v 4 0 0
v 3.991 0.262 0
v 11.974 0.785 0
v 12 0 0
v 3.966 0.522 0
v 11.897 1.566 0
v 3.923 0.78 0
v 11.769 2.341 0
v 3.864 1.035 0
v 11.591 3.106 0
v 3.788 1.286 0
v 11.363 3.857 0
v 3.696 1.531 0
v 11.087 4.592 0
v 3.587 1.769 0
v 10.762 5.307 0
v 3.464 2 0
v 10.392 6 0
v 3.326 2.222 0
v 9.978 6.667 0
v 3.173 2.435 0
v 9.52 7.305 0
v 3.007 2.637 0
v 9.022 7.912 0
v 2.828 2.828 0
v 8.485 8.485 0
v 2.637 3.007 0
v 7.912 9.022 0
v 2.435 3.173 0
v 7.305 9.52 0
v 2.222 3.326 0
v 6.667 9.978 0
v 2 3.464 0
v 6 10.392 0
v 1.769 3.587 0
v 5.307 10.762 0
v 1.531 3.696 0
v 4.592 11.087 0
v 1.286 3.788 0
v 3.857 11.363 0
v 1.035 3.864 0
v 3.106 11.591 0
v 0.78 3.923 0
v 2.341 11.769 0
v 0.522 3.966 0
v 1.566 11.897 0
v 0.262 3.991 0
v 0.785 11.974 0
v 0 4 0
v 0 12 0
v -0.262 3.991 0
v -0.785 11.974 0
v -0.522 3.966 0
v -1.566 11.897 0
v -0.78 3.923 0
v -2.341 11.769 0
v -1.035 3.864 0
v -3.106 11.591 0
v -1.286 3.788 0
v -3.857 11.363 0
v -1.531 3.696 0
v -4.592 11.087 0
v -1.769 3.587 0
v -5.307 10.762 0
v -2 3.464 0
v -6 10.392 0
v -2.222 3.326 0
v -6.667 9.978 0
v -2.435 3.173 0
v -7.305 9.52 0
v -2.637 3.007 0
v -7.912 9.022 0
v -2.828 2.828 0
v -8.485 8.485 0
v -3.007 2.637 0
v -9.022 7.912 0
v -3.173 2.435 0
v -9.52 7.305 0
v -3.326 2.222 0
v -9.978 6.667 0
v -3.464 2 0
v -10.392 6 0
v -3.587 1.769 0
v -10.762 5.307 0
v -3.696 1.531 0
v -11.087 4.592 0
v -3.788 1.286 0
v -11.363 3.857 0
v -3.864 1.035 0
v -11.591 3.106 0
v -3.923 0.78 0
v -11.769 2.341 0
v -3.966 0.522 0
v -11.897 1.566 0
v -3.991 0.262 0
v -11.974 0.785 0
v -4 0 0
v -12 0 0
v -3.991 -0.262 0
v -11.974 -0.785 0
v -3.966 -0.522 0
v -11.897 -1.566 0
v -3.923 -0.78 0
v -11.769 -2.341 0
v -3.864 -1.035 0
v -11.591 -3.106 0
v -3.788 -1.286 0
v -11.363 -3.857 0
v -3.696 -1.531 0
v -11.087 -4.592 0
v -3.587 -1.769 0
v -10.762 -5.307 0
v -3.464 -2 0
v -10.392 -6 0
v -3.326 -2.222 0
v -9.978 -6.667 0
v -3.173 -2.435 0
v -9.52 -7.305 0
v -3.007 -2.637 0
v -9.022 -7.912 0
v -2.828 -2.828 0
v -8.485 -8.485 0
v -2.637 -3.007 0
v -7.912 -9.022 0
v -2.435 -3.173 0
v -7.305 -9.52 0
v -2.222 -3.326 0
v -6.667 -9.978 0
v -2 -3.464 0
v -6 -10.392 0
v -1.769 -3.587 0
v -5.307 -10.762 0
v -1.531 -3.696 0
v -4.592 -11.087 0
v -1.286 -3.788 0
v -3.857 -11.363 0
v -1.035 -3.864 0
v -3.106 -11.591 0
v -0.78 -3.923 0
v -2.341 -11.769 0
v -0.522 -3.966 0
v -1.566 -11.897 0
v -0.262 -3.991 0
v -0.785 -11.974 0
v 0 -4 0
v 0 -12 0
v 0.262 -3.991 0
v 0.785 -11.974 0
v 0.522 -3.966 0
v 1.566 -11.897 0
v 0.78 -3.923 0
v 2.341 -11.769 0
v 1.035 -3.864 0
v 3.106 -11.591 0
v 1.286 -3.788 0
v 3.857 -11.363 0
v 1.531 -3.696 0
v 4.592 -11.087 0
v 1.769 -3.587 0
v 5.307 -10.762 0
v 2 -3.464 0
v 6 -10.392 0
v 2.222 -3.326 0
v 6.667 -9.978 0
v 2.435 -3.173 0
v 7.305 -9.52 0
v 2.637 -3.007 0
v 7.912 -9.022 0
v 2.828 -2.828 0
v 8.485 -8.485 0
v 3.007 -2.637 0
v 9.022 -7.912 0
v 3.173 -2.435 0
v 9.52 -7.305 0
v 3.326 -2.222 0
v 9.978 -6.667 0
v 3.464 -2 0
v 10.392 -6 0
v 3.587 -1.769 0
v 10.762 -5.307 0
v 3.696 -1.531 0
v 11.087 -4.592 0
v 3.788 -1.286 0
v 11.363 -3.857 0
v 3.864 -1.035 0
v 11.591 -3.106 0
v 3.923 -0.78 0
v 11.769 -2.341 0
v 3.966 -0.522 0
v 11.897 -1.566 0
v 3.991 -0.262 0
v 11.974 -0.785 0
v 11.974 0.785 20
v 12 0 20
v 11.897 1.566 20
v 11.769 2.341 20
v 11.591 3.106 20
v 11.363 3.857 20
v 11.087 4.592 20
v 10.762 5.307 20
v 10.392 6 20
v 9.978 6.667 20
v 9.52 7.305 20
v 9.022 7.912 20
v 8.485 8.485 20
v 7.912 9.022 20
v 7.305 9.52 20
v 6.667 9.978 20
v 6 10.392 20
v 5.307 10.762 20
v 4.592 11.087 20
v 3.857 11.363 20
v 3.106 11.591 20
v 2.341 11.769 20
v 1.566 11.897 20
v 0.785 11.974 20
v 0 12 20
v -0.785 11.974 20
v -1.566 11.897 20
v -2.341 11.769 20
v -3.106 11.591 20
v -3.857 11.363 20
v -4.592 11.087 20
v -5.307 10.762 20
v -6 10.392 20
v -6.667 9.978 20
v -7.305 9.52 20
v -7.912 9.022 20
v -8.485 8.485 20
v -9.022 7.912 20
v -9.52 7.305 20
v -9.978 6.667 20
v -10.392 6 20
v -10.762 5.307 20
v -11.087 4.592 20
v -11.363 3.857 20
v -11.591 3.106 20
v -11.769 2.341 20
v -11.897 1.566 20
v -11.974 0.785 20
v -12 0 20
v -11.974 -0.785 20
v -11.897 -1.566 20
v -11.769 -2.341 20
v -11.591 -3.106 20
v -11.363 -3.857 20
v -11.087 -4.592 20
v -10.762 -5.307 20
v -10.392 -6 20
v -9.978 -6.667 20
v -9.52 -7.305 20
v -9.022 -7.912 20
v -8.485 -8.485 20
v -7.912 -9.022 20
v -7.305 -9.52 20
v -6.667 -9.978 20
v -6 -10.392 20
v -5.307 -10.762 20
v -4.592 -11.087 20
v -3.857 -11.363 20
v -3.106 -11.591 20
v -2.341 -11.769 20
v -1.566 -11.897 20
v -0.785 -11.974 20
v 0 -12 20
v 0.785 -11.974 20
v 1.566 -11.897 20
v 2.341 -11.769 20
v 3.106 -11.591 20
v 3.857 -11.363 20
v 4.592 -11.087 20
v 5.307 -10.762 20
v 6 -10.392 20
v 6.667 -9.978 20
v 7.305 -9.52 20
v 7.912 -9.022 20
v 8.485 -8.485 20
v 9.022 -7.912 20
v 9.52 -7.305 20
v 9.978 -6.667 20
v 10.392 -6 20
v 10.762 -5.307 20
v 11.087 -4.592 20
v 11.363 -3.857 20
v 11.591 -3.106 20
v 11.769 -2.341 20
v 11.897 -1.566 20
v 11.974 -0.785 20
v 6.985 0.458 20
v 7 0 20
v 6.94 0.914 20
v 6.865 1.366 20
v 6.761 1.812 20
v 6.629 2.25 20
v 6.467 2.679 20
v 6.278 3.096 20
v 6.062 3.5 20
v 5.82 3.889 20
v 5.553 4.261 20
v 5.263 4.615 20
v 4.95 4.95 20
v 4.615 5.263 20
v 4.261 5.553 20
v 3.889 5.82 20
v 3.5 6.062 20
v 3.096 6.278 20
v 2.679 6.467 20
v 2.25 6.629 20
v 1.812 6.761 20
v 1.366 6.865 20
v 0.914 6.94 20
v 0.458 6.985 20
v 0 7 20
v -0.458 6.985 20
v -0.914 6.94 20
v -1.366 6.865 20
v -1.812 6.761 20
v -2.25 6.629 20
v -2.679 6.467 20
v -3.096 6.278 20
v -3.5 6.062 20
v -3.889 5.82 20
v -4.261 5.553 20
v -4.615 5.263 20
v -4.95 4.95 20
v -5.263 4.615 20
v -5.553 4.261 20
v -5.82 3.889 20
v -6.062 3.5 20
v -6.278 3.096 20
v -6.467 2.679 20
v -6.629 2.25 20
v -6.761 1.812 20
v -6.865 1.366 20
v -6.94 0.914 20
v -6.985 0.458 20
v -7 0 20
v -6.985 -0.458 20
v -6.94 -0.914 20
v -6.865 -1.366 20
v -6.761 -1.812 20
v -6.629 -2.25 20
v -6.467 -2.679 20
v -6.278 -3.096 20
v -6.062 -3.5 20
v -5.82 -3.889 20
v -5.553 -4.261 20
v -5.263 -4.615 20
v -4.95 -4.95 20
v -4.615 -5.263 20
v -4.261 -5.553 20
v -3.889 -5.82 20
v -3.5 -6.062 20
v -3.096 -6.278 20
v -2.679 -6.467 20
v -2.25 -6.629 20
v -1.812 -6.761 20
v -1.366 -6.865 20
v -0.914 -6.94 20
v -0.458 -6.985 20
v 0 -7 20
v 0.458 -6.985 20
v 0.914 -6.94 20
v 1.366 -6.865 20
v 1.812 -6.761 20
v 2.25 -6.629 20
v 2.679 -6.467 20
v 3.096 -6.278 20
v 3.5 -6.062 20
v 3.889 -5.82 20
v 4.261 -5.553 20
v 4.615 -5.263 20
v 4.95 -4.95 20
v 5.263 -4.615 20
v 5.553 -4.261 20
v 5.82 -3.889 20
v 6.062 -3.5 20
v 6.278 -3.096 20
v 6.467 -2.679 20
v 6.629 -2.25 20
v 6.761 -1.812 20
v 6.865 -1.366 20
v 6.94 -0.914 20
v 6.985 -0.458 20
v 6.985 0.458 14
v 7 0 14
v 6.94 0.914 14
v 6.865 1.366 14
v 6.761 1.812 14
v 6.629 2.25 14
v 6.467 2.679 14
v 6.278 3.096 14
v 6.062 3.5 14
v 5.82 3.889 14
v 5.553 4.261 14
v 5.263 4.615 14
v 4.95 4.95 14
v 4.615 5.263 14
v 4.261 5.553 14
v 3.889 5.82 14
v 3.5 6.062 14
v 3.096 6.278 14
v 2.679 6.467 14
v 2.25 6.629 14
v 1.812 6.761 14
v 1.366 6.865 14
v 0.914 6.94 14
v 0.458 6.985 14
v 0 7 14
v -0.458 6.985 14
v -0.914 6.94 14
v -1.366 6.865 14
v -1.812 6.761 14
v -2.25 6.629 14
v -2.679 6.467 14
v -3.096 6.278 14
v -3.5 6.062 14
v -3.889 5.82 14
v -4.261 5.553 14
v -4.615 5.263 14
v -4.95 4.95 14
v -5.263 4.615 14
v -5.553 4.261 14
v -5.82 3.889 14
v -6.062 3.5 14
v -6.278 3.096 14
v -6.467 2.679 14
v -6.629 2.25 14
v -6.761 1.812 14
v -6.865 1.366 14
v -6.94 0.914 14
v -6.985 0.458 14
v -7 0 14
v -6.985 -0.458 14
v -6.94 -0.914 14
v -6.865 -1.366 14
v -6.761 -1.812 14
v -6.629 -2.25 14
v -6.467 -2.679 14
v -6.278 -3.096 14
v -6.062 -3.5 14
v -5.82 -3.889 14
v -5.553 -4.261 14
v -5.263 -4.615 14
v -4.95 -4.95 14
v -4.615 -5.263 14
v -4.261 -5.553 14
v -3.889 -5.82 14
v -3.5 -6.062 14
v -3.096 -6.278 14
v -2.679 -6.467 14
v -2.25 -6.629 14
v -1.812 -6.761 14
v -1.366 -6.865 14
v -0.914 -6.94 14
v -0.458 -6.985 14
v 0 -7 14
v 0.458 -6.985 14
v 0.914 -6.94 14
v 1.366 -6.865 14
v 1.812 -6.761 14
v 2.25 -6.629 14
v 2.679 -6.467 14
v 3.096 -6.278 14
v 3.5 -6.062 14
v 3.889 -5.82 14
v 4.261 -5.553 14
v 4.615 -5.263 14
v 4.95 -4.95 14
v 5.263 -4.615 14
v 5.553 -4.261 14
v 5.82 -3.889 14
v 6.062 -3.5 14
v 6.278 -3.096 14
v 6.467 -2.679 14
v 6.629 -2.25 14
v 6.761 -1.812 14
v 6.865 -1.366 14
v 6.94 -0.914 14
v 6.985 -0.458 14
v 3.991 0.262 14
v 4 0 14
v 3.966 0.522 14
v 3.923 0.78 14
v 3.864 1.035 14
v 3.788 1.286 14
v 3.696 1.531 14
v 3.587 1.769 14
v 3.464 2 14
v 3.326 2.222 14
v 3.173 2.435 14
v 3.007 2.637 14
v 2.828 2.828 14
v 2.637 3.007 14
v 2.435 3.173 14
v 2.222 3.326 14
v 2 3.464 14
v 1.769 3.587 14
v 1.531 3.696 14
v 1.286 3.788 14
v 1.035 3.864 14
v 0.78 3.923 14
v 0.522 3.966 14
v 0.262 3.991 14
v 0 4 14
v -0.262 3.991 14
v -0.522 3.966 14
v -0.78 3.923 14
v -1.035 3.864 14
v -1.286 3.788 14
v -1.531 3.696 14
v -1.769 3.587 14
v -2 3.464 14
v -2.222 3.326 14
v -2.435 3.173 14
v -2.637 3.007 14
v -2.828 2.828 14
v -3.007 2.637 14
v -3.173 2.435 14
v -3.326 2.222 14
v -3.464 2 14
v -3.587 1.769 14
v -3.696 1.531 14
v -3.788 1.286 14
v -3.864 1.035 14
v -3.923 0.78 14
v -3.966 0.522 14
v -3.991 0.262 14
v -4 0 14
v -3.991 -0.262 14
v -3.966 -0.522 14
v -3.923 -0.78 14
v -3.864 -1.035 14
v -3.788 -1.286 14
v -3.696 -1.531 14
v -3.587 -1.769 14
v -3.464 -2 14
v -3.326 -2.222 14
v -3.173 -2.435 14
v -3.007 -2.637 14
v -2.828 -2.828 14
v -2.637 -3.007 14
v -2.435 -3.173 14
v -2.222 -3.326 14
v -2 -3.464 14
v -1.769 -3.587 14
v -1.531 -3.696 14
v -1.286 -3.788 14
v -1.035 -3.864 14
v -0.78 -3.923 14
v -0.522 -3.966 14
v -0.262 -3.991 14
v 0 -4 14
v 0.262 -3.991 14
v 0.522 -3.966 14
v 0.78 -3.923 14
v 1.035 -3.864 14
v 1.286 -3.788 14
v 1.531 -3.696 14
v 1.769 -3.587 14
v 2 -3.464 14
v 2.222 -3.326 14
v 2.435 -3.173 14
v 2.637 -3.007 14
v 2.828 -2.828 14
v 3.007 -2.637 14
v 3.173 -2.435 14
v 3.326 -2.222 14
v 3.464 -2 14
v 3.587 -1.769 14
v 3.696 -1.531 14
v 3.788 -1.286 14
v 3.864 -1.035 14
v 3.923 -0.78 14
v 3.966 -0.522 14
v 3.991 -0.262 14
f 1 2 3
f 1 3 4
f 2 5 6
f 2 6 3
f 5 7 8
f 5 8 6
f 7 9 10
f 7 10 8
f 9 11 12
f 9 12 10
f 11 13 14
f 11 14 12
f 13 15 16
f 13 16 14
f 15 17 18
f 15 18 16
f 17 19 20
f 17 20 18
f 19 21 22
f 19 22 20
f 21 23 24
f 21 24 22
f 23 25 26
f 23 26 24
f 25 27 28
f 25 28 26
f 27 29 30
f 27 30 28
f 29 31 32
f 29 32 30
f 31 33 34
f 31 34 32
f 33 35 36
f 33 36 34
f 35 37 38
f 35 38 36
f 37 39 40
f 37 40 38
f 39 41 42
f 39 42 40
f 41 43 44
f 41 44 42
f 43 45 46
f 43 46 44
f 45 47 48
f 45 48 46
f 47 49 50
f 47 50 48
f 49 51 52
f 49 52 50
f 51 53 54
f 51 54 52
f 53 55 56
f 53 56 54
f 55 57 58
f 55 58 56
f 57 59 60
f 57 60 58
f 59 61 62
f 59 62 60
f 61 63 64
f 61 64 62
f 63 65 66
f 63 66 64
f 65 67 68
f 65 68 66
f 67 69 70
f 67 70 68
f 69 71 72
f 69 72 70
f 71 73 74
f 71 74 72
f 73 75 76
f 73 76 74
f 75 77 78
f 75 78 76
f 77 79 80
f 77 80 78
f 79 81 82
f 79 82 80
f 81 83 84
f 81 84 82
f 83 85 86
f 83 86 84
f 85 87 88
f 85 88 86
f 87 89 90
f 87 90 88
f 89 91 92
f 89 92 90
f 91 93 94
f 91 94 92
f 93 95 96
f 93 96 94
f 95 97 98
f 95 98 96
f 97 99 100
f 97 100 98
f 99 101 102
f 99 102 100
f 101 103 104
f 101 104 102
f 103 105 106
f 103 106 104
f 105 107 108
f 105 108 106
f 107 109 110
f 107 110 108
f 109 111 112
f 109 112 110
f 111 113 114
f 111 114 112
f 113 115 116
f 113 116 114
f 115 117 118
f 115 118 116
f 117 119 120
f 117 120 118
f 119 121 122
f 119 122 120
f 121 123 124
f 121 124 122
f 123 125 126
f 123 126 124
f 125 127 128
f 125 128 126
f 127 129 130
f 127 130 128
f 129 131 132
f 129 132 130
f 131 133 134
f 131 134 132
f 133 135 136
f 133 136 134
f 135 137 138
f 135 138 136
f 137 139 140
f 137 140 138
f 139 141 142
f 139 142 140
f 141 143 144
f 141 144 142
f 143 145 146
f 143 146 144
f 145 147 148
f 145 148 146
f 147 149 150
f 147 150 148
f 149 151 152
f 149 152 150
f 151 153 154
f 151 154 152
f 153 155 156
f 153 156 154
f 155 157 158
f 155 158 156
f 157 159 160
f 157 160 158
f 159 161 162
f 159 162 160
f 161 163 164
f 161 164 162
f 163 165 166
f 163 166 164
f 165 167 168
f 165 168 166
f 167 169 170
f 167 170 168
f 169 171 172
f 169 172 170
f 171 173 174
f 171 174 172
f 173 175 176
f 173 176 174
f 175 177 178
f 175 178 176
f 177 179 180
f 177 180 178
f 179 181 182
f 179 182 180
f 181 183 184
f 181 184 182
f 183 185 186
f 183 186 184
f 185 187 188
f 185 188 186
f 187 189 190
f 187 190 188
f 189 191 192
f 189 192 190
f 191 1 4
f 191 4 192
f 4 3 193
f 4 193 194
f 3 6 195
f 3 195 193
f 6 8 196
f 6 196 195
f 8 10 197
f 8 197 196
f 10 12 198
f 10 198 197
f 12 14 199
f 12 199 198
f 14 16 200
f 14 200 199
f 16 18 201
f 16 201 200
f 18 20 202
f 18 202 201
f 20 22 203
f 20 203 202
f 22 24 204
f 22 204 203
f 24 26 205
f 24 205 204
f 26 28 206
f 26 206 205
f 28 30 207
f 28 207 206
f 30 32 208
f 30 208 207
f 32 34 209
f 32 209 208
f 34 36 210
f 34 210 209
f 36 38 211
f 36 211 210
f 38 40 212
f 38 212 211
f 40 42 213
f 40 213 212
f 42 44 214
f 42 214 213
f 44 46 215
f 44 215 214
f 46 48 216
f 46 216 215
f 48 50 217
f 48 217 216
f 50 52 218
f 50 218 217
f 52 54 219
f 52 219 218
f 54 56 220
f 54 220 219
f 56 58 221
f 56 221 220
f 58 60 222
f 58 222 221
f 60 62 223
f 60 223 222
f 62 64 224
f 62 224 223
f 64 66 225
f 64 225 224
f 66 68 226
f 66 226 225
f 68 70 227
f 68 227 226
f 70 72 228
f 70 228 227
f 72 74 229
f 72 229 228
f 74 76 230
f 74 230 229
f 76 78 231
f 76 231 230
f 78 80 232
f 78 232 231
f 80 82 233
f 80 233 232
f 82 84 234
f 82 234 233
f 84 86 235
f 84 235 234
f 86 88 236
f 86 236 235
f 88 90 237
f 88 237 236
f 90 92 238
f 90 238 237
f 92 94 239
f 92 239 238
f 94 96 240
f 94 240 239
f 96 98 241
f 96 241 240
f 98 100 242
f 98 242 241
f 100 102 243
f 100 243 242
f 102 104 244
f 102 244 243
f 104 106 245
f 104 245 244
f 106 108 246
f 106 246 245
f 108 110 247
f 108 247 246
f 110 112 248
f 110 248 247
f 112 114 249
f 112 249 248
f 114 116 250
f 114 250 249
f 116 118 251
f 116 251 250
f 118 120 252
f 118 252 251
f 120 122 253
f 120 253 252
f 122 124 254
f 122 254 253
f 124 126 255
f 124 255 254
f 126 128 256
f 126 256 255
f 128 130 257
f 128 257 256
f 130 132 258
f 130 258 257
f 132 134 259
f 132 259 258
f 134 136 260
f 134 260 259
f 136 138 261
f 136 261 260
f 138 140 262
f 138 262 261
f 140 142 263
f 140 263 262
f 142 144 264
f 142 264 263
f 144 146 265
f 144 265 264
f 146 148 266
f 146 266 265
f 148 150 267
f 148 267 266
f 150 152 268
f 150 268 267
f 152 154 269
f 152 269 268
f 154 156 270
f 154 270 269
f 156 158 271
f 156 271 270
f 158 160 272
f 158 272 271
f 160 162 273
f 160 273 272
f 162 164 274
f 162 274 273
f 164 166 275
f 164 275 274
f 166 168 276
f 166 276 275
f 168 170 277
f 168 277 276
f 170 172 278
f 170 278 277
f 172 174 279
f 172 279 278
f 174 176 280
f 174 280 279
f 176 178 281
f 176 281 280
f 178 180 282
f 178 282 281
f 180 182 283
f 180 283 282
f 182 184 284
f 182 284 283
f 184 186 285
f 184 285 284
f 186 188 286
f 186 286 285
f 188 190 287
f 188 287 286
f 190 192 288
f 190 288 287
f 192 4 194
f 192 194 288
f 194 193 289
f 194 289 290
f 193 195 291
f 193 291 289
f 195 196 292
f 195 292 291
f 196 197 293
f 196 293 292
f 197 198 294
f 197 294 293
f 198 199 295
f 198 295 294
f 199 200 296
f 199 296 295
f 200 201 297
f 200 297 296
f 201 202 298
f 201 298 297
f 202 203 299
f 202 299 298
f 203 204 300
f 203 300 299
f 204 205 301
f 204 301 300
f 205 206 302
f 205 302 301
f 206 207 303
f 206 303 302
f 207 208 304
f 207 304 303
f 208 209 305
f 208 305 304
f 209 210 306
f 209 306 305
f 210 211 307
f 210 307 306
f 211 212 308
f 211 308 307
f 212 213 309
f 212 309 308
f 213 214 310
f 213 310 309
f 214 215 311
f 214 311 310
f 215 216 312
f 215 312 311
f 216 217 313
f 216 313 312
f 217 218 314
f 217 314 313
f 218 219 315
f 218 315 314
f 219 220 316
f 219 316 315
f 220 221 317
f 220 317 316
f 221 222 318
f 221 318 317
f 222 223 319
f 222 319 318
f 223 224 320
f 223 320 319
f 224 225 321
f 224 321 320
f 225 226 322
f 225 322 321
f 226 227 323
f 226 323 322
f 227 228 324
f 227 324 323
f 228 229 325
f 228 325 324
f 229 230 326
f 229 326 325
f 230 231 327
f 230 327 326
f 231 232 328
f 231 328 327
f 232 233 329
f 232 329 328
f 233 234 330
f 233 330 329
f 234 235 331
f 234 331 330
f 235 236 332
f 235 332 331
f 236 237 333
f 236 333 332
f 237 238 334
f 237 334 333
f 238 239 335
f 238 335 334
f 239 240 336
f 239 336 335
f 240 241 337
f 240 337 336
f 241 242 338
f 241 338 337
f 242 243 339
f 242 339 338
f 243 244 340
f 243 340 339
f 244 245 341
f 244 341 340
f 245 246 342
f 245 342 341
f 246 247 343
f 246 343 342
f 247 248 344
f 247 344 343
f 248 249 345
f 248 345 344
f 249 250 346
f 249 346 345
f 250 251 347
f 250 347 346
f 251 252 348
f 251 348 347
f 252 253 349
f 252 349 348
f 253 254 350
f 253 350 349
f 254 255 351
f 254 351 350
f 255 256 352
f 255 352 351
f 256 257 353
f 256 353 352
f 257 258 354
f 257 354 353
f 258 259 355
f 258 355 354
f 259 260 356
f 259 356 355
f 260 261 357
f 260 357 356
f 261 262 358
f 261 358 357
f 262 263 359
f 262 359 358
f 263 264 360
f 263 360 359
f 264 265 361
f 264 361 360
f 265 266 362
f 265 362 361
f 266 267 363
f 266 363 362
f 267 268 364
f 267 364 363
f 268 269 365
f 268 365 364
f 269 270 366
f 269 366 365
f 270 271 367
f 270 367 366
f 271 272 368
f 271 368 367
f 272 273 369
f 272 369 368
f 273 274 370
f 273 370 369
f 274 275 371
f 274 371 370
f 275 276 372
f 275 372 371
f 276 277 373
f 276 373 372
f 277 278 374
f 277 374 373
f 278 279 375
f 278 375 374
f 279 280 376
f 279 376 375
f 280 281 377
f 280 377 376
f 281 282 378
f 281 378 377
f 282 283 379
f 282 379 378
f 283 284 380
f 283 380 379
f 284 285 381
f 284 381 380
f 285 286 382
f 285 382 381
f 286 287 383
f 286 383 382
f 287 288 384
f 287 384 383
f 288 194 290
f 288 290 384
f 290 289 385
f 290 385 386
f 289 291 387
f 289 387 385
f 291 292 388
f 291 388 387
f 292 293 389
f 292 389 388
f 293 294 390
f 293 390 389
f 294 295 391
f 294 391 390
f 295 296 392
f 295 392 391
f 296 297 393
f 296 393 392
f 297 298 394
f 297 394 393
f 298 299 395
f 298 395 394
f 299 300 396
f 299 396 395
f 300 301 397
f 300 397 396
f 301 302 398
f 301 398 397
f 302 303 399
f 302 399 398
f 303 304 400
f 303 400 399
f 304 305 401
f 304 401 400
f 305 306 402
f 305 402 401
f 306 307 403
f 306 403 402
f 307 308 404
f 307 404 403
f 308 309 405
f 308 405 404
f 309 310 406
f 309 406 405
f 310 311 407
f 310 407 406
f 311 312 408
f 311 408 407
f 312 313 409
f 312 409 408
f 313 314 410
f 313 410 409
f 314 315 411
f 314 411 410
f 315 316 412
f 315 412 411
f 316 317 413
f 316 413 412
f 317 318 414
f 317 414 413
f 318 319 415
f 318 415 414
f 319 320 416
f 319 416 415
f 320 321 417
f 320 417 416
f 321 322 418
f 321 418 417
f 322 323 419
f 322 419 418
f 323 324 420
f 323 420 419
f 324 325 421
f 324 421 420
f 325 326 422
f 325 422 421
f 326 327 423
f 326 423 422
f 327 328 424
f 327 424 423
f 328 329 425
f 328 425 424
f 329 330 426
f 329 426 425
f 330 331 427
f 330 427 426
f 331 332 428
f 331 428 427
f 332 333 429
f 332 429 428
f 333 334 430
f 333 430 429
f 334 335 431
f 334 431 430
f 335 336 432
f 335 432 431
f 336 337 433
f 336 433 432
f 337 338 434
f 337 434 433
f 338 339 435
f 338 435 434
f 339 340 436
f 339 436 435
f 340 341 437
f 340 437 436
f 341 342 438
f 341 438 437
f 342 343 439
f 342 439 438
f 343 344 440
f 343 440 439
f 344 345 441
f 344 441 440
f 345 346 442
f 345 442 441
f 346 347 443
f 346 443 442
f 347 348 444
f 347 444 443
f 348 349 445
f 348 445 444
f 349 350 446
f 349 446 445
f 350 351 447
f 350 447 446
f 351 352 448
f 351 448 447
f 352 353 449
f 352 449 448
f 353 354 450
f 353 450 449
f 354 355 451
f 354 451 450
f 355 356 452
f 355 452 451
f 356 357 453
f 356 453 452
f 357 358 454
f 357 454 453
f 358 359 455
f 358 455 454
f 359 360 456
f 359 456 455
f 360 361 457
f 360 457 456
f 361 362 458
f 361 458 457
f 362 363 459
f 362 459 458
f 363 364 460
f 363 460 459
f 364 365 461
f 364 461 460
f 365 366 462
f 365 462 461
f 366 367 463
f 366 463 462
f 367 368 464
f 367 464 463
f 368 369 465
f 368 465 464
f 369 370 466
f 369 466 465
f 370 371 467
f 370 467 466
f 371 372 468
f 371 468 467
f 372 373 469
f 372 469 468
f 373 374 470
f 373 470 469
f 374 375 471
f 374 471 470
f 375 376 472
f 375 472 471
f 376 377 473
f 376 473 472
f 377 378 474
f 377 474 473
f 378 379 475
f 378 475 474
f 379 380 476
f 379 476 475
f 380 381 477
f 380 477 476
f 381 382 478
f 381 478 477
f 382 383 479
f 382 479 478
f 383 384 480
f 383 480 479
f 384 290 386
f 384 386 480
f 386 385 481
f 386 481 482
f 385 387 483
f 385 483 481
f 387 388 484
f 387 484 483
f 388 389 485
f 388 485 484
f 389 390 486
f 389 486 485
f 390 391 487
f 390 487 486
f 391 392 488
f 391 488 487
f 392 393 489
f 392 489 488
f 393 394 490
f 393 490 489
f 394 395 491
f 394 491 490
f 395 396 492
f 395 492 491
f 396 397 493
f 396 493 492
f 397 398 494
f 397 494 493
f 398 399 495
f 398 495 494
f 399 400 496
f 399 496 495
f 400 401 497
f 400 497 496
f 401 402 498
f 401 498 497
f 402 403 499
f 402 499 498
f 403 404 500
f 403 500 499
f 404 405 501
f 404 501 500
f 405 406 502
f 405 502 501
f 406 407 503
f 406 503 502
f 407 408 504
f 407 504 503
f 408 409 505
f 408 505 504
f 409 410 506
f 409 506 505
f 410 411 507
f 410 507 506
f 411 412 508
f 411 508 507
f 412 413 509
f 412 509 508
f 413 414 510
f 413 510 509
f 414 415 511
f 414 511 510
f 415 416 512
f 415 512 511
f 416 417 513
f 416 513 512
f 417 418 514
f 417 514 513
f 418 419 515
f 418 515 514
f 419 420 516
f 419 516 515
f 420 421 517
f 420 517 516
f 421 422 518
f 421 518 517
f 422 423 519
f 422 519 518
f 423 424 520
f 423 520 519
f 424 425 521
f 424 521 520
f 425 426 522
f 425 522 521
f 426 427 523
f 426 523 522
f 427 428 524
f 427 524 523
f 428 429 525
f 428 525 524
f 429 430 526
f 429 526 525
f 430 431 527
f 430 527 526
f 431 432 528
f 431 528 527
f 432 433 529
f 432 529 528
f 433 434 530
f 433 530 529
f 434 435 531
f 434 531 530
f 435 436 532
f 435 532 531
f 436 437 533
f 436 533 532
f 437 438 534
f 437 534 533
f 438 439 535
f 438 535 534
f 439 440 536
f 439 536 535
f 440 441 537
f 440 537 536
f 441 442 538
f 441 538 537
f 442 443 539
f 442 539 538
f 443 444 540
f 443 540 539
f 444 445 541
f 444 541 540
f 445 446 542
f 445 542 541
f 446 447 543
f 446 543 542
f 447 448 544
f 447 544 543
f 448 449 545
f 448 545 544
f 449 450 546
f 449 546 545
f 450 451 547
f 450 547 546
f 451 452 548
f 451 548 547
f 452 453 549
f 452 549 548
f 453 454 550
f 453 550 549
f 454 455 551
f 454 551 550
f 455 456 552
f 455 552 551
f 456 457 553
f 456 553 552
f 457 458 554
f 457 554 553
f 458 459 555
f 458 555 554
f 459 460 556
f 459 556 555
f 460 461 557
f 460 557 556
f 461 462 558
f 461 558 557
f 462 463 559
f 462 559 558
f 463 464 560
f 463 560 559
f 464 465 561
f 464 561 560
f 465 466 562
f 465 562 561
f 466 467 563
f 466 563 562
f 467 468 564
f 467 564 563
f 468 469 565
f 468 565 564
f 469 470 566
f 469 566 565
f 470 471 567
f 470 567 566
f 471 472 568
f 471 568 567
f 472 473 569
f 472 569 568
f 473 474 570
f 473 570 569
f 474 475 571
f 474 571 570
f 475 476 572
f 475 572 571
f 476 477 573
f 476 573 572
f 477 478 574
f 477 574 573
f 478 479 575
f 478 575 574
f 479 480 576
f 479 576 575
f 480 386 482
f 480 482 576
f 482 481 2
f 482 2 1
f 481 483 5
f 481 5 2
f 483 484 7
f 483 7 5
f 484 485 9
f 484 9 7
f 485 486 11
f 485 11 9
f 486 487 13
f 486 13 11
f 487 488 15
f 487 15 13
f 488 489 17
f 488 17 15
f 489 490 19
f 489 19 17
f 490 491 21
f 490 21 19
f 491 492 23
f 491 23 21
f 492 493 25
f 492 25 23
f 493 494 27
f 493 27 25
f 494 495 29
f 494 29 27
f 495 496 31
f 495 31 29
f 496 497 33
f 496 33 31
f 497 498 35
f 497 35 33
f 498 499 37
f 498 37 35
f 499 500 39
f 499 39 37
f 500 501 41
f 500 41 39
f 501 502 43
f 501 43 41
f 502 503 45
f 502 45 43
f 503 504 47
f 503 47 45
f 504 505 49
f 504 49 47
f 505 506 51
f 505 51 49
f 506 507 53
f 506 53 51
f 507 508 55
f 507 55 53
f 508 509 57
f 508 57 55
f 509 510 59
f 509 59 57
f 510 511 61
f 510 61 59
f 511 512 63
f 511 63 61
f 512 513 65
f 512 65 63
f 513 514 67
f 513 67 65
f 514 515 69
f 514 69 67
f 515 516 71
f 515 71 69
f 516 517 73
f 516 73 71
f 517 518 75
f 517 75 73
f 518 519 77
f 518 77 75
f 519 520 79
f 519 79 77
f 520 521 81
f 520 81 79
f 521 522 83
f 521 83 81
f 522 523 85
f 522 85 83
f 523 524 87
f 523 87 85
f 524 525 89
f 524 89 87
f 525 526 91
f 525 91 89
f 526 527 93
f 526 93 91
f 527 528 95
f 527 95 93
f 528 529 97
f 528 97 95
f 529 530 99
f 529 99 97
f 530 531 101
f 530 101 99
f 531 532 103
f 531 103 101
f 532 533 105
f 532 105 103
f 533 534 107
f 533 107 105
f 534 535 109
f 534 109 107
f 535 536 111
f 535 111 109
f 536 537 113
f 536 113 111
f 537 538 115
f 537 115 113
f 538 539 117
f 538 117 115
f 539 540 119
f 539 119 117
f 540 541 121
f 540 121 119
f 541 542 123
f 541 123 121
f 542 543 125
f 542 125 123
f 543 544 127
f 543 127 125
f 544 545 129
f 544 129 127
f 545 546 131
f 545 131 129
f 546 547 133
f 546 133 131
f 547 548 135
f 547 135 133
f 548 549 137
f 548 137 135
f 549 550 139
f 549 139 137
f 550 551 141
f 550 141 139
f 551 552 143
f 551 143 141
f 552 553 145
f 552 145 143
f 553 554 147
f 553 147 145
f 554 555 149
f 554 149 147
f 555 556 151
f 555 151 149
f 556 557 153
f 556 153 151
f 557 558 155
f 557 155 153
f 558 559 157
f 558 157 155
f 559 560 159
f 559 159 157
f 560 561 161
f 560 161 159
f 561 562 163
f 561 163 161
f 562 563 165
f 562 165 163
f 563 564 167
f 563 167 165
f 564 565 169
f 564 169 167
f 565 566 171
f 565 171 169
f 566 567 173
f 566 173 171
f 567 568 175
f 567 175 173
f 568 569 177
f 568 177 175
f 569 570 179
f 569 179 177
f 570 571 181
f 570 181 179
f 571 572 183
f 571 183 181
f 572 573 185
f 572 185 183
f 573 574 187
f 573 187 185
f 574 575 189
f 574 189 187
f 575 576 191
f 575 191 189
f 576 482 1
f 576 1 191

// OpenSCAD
// Original MechIntel educational model. CC0-1.0. Units: mm.
// Not a standardized or load-rated component.
$fn=96;
// Section points: [radius, height], mm. Edit to change the profile.
section=[[4, 0], [12, 0], [12, 20], [7, 20], [7, 14], [4, 14]];
rotate_extrude($fn=96) polygon(points=section);
